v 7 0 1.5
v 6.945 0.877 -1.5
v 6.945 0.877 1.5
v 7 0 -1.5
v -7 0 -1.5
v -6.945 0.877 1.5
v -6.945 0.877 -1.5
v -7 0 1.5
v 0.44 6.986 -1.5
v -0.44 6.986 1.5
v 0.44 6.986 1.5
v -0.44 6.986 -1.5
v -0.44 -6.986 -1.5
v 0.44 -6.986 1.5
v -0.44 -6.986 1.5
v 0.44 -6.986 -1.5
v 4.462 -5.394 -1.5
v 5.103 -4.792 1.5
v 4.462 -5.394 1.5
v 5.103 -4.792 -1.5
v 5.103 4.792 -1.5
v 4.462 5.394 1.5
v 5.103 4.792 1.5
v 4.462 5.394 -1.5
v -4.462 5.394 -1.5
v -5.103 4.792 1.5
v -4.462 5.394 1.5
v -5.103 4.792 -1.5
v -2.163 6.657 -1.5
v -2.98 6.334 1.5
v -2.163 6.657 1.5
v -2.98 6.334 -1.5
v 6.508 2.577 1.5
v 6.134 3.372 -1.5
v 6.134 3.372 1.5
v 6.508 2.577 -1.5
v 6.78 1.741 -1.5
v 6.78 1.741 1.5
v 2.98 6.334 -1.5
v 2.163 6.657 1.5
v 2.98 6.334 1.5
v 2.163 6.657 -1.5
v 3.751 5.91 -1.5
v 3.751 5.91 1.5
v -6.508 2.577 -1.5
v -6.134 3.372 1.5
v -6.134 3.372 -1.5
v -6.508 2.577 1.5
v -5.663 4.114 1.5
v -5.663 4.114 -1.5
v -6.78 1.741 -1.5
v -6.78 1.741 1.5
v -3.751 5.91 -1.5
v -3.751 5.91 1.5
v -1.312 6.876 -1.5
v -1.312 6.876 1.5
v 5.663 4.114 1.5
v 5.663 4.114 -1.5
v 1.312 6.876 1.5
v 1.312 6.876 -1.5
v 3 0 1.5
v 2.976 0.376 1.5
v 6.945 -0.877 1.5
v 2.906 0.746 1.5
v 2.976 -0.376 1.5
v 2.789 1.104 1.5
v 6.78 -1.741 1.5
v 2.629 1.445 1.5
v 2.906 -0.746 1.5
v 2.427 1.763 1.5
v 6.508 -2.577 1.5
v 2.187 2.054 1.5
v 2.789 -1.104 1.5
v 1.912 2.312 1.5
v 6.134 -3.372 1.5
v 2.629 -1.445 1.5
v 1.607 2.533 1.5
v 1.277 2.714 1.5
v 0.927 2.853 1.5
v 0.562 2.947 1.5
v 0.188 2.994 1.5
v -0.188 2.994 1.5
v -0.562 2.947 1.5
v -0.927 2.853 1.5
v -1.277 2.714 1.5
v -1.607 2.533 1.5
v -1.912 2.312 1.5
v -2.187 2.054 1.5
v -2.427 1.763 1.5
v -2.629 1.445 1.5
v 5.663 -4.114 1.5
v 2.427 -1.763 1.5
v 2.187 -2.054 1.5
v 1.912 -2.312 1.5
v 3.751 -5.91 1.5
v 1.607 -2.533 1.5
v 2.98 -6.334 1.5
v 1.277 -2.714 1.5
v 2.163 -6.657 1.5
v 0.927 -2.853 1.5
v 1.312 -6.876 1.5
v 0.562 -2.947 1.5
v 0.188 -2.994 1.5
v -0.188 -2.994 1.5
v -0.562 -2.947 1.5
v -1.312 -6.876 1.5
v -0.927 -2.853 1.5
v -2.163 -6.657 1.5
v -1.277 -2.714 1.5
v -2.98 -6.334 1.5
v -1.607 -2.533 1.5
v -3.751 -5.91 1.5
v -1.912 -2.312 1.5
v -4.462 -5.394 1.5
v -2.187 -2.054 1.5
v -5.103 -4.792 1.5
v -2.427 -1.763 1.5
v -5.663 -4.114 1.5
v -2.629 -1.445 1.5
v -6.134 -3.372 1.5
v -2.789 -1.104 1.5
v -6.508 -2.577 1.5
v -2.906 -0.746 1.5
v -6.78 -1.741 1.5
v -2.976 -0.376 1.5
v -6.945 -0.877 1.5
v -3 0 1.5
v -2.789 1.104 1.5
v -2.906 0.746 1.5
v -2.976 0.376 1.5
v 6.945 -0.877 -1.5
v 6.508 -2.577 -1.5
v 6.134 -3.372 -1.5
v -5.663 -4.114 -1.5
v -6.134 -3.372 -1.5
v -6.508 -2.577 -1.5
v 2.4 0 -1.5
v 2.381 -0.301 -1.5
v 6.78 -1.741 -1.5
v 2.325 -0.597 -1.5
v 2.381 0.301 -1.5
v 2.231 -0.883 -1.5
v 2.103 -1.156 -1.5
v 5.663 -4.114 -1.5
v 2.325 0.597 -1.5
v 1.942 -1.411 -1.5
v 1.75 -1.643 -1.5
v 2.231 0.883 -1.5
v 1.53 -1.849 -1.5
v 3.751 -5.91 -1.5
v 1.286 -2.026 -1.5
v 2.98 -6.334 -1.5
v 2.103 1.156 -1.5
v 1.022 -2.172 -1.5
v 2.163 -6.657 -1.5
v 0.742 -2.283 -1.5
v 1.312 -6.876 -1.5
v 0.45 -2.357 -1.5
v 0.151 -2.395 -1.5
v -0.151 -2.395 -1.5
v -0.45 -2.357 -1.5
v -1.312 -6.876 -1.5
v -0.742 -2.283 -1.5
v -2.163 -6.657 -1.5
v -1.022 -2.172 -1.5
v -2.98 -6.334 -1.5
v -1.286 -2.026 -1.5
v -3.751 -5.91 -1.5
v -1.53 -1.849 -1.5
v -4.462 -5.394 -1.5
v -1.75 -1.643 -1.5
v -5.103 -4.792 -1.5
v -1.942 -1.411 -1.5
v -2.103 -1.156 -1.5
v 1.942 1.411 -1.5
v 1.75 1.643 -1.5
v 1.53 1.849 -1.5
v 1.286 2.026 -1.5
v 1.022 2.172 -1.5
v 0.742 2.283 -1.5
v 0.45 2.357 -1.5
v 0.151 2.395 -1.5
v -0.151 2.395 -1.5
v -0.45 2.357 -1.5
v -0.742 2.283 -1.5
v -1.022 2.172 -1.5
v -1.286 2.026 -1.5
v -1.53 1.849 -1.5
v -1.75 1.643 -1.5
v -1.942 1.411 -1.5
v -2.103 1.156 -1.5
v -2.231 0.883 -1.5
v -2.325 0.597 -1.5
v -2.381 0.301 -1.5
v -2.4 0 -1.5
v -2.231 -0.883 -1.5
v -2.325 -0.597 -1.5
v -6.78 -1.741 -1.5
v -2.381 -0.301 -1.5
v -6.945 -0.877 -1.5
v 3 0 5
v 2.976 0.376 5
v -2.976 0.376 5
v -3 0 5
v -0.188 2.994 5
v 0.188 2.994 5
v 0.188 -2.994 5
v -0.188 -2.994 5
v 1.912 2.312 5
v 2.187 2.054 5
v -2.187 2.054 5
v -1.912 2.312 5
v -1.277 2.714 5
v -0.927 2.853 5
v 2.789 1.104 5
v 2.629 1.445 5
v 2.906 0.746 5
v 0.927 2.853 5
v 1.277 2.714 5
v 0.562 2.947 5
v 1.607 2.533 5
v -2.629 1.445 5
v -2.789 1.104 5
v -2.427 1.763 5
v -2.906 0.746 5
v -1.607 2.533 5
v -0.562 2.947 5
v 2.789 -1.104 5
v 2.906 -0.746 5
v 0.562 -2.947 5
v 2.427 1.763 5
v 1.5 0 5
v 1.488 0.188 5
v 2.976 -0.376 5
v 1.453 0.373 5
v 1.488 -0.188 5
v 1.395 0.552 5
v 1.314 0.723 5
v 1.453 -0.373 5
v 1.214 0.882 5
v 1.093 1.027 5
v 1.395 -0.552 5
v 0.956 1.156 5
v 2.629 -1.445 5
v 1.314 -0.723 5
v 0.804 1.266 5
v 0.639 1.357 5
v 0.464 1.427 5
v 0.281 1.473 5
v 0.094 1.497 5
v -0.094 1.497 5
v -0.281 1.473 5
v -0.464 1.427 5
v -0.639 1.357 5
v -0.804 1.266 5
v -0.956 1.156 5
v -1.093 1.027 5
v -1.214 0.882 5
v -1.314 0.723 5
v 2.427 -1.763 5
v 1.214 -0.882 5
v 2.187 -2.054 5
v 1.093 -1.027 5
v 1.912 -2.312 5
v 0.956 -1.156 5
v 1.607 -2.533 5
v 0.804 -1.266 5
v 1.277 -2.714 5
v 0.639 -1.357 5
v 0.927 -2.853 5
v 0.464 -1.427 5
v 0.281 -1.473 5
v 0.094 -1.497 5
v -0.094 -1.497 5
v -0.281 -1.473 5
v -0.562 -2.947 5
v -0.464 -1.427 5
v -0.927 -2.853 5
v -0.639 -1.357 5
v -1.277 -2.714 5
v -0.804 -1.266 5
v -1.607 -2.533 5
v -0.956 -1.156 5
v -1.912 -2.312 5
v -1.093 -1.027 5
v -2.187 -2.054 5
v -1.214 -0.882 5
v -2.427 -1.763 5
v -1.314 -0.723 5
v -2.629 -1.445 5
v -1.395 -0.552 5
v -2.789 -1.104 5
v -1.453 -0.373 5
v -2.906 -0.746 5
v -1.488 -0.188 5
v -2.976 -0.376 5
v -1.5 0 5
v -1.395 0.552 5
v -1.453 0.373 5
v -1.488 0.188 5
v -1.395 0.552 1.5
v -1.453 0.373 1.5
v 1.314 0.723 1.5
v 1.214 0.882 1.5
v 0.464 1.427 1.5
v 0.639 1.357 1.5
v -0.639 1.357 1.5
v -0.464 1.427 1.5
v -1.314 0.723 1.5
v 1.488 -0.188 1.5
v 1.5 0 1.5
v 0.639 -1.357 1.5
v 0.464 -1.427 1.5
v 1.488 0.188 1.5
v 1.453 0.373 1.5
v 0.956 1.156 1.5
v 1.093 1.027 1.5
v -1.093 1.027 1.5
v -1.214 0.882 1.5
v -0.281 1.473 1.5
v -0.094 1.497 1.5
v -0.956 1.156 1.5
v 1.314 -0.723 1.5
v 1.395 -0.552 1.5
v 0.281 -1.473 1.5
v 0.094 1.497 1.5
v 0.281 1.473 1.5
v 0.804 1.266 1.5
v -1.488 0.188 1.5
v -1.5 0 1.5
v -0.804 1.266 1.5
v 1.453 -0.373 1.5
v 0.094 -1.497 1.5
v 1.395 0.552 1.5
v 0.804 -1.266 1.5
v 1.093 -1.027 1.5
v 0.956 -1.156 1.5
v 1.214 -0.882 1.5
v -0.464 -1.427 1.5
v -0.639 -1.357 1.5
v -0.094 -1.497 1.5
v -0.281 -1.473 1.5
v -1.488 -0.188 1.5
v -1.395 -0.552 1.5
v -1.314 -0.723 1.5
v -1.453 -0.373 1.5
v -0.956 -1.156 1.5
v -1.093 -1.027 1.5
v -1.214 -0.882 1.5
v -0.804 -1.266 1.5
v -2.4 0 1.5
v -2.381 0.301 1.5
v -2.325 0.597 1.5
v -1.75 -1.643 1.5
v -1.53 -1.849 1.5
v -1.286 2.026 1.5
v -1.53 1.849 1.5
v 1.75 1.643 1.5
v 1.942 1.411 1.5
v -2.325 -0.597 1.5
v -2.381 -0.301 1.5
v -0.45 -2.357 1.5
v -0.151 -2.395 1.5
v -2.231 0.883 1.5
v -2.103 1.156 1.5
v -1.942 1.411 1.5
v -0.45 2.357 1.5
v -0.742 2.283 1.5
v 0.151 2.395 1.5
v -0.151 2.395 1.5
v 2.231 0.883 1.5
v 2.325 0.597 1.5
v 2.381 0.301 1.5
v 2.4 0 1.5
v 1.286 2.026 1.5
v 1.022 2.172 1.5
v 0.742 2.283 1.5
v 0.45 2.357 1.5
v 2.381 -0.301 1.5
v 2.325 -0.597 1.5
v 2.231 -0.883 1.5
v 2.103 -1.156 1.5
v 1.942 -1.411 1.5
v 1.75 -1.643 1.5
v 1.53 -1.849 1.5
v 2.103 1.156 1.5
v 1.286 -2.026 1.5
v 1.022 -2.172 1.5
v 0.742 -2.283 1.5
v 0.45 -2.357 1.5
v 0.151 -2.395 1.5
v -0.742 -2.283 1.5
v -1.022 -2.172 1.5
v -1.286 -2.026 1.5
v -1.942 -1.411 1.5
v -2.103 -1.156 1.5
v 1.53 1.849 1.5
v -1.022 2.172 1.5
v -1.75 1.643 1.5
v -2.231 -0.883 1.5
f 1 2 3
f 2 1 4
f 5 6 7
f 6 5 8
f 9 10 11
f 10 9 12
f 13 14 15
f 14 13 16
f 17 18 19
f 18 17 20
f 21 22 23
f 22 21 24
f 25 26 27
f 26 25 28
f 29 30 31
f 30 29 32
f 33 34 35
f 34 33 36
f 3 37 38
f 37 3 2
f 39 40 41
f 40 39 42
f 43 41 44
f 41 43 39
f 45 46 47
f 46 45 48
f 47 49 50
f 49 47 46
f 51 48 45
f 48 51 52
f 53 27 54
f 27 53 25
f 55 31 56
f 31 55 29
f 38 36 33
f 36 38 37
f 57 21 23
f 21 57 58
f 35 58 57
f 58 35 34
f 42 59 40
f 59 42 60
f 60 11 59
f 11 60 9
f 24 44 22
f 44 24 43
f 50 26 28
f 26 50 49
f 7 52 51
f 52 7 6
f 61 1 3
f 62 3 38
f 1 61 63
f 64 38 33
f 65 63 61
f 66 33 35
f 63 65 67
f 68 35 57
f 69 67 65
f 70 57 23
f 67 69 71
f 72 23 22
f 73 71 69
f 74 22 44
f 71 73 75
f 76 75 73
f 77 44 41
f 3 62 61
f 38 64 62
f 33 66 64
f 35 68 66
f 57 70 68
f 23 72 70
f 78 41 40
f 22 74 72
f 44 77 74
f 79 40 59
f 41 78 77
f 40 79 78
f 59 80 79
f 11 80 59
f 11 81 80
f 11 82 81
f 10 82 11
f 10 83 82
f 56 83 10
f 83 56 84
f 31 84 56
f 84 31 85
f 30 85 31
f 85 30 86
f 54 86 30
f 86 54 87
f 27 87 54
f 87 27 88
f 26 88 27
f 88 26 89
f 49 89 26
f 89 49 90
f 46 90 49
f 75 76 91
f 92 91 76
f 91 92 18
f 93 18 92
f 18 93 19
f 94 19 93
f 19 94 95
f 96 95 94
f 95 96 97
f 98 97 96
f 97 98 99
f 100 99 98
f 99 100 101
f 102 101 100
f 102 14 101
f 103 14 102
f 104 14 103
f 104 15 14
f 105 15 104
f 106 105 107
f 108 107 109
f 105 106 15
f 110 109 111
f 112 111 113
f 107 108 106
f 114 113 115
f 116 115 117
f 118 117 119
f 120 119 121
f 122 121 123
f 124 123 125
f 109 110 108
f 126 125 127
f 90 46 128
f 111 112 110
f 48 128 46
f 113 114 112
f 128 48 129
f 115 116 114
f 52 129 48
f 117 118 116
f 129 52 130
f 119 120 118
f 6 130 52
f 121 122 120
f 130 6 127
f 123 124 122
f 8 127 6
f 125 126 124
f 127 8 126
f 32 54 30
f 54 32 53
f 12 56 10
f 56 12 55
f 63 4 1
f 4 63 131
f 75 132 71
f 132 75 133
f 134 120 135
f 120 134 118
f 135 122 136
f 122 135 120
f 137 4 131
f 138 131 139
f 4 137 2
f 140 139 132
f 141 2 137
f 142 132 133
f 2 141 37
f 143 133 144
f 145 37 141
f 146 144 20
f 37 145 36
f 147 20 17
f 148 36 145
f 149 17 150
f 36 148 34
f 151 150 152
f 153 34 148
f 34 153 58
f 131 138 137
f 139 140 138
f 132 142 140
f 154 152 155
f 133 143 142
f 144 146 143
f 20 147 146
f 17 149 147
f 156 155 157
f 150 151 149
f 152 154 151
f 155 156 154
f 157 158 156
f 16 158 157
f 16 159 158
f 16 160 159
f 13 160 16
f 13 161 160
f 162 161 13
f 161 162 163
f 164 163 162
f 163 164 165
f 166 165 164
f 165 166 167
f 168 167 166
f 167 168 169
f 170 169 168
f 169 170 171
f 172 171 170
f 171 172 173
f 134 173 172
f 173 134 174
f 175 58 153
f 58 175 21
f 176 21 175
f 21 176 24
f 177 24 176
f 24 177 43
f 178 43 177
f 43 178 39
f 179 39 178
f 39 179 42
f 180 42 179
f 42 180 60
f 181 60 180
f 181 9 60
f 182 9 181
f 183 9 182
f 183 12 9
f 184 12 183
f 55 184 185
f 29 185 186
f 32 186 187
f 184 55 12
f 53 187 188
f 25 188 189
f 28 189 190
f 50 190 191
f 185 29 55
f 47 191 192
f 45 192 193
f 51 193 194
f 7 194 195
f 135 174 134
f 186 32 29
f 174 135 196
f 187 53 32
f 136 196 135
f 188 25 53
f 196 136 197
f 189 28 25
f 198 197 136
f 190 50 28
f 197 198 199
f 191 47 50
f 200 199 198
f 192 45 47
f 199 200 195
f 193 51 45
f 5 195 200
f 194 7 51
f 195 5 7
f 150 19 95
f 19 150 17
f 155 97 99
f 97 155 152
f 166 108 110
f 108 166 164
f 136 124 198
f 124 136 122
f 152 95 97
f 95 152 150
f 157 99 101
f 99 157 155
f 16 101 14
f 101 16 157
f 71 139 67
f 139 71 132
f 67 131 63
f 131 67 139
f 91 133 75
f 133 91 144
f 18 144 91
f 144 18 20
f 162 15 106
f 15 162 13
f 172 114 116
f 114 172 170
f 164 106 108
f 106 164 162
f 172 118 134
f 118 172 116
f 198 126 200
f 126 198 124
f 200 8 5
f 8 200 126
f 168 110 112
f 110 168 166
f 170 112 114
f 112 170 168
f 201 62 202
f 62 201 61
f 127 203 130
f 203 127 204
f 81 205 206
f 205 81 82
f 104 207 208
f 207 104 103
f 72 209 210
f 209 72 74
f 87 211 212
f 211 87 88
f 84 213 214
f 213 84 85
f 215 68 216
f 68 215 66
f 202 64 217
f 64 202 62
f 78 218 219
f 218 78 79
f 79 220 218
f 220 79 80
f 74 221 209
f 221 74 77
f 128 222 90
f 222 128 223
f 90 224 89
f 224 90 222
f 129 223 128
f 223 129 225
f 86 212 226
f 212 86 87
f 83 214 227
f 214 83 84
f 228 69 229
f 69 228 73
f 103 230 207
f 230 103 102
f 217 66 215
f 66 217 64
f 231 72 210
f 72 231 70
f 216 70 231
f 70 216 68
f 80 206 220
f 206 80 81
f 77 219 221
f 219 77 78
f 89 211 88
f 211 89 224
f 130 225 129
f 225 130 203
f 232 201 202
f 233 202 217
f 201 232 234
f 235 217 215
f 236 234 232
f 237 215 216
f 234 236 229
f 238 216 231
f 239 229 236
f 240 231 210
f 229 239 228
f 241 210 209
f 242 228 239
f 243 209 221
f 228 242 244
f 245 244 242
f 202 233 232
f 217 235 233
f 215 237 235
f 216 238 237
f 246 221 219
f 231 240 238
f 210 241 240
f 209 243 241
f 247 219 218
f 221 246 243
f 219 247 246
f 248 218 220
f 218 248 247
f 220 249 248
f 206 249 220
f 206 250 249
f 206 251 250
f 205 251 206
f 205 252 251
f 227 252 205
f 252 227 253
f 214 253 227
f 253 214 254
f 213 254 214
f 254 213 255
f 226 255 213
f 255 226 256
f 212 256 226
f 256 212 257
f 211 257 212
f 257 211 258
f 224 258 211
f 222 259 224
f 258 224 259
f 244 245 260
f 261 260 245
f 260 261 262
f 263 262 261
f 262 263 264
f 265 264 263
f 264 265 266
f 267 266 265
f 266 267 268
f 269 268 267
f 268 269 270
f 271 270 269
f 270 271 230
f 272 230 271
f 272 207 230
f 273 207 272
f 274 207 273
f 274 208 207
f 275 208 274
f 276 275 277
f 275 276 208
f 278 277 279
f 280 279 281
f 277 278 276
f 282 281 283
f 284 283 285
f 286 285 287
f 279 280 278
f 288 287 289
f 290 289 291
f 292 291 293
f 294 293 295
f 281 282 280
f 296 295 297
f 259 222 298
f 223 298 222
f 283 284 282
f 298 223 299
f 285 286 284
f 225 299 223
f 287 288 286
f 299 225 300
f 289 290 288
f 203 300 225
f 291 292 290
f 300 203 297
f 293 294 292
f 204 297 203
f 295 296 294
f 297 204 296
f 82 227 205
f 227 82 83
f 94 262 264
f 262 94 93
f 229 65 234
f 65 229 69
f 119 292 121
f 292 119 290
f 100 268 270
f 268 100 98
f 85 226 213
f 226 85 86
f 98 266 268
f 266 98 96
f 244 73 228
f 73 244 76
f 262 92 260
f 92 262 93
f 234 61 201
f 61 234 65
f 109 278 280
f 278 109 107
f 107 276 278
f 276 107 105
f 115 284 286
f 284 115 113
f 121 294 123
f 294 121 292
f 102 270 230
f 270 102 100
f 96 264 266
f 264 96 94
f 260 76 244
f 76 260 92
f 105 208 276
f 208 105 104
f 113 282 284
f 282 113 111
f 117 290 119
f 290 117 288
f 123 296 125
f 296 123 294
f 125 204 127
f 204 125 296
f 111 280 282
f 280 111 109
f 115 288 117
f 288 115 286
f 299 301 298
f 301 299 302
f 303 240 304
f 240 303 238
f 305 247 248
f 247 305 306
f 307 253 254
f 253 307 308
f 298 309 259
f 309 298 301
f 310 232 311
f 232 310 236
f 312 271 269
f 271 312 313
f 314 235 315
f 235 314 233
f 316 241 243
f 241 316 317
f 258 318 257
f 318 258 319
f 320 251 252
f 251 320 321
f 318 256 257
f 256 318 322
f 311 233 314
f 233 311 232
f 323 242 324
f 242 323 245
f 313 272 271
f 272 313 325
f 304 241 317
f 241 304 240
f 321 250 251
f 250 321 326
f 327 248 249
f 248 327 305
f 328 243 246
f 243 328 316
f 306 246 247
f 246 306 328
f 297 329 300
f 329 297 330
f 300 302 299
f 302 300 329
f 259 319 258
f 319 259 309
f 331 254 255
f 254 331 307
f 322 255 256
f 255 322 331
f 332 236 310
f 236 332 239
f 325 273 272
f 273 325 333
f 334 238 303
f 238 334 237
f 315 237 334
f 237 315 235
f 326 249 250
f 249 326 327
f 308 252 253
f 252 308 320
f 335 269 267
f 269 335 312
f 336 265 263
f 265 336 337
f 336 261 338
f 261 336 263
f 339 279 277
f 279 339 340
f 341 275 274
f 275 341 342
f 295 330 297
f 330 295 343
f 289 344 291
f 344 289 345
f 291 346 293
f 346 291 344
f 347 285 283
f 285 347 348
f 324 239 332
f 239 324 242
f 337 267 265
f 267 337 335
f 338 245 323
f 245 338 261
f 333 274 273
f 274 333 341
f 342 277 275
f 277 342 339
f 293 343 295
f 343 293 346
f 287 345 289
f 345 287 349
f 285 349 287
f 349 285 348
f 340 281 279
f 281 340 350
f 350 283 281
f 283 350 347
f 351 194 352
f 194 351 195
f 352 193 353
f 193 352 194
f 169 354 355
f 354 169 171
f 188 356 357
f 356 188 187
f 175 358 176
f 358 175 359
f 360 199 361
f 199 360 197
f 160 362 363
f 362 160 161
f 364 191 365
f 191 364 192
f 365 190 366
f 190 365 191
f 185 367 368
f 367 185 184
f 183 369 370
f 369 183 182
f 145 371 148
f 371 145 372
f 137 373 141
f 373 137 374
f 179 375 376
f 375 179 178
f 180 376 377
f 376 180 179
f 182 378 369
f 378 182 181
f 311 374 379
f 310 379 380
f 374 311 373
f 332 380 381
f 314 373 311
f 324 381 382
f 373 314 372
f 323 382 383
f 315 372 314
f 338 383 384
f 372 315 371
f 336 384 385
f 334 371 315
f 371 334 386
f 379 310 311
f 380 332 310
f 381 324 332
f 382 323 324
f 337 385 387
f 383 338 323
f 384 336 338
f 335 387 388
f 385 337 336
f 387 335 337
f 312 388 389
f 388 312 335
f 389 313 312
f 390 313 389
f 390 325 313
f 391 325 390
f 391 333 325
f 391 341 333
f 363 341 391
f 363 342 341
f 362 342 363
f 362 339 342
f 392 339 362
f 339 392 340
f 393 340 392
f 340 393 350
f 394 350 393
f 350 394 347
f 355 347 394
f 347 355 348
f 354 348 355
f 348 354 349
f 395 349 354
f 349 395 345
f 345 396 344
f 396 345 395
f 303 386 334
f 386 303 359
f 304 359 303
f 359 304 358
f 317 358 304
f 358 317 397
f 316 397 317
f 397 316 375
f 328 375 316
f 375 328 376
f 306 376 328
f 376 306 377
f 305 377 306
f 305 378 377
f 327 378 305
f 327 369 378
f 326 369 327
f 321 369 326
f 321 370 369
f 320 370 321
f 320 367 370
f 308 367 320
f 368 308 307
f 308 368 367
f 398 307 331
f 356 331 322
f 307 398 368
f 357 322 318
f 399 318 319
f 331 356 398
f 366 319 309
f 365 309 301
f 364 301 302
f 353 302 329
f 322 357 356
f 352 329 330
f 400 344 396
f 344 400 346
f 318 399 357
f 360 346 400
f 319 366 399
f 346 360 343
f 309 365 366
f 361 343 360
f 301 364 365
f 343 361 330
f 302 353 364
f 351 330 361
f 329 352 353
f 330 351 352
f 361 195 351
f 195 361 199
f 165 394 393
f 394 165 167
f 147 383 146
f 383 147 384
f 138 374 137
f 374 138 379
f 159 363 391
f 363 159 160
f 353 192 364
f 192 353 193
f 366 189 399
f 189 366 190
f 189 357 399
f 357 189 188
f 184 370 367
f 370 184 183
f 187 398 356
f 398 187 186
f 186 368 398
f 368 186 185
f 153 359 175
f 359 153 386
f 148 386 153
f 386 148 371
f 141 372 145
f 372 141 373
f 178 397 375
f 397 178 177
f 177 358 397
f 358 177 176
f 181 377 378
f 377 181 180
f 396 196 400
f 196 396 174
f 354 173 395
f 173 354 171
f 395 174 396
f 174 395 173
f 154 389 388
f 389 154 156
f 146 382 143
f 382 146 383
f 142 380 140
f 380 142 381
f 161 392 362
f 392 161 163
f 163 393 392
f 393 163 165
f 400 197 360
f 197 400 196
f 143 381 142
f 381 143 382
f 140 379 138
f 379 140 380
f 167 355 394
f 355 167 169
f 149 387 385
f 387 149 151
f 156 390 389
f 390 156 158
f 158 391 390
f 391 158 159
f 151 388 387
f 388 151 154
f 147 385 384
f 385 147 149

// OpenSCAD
$fn = 50;


difference() {
	union() {
		translate(v = [0, 0, -1.5000000000]) {
			rotate(a = [0, 0, 0]) {
				cylinder(h = 3, r = 7.0000000000);
			}
		}
		translate(v = [0, 0, -1.5000000000]) {
			rotate(a = [0, 0, 0]) {
				cylinder(h = 6.5000000000, r = 3.0000000000);
			}
		}
	}
	union() {
		translate(v = [0, 0, -125.0000000000]) {
			rotate(a = [0, 0, 0]) {
				cylinder(h = 250, r = 1.5000000000);
			}
		}
		#translate(v = [0, 0, 1.5000000000]) {
			rotate(a = [0, 180, 0]) {
				cylinder(h = 3, r1 = 2.4000000000, r2 = 2.4000000000);
			}
		}
		#translate(v = [0, 0, 5.0000000000]) {
			rotate(a = [0, 180, 0]) {
				cylinder(h = 6.5000000000, r = 1.5000000000);
			}
		}
	}
}
